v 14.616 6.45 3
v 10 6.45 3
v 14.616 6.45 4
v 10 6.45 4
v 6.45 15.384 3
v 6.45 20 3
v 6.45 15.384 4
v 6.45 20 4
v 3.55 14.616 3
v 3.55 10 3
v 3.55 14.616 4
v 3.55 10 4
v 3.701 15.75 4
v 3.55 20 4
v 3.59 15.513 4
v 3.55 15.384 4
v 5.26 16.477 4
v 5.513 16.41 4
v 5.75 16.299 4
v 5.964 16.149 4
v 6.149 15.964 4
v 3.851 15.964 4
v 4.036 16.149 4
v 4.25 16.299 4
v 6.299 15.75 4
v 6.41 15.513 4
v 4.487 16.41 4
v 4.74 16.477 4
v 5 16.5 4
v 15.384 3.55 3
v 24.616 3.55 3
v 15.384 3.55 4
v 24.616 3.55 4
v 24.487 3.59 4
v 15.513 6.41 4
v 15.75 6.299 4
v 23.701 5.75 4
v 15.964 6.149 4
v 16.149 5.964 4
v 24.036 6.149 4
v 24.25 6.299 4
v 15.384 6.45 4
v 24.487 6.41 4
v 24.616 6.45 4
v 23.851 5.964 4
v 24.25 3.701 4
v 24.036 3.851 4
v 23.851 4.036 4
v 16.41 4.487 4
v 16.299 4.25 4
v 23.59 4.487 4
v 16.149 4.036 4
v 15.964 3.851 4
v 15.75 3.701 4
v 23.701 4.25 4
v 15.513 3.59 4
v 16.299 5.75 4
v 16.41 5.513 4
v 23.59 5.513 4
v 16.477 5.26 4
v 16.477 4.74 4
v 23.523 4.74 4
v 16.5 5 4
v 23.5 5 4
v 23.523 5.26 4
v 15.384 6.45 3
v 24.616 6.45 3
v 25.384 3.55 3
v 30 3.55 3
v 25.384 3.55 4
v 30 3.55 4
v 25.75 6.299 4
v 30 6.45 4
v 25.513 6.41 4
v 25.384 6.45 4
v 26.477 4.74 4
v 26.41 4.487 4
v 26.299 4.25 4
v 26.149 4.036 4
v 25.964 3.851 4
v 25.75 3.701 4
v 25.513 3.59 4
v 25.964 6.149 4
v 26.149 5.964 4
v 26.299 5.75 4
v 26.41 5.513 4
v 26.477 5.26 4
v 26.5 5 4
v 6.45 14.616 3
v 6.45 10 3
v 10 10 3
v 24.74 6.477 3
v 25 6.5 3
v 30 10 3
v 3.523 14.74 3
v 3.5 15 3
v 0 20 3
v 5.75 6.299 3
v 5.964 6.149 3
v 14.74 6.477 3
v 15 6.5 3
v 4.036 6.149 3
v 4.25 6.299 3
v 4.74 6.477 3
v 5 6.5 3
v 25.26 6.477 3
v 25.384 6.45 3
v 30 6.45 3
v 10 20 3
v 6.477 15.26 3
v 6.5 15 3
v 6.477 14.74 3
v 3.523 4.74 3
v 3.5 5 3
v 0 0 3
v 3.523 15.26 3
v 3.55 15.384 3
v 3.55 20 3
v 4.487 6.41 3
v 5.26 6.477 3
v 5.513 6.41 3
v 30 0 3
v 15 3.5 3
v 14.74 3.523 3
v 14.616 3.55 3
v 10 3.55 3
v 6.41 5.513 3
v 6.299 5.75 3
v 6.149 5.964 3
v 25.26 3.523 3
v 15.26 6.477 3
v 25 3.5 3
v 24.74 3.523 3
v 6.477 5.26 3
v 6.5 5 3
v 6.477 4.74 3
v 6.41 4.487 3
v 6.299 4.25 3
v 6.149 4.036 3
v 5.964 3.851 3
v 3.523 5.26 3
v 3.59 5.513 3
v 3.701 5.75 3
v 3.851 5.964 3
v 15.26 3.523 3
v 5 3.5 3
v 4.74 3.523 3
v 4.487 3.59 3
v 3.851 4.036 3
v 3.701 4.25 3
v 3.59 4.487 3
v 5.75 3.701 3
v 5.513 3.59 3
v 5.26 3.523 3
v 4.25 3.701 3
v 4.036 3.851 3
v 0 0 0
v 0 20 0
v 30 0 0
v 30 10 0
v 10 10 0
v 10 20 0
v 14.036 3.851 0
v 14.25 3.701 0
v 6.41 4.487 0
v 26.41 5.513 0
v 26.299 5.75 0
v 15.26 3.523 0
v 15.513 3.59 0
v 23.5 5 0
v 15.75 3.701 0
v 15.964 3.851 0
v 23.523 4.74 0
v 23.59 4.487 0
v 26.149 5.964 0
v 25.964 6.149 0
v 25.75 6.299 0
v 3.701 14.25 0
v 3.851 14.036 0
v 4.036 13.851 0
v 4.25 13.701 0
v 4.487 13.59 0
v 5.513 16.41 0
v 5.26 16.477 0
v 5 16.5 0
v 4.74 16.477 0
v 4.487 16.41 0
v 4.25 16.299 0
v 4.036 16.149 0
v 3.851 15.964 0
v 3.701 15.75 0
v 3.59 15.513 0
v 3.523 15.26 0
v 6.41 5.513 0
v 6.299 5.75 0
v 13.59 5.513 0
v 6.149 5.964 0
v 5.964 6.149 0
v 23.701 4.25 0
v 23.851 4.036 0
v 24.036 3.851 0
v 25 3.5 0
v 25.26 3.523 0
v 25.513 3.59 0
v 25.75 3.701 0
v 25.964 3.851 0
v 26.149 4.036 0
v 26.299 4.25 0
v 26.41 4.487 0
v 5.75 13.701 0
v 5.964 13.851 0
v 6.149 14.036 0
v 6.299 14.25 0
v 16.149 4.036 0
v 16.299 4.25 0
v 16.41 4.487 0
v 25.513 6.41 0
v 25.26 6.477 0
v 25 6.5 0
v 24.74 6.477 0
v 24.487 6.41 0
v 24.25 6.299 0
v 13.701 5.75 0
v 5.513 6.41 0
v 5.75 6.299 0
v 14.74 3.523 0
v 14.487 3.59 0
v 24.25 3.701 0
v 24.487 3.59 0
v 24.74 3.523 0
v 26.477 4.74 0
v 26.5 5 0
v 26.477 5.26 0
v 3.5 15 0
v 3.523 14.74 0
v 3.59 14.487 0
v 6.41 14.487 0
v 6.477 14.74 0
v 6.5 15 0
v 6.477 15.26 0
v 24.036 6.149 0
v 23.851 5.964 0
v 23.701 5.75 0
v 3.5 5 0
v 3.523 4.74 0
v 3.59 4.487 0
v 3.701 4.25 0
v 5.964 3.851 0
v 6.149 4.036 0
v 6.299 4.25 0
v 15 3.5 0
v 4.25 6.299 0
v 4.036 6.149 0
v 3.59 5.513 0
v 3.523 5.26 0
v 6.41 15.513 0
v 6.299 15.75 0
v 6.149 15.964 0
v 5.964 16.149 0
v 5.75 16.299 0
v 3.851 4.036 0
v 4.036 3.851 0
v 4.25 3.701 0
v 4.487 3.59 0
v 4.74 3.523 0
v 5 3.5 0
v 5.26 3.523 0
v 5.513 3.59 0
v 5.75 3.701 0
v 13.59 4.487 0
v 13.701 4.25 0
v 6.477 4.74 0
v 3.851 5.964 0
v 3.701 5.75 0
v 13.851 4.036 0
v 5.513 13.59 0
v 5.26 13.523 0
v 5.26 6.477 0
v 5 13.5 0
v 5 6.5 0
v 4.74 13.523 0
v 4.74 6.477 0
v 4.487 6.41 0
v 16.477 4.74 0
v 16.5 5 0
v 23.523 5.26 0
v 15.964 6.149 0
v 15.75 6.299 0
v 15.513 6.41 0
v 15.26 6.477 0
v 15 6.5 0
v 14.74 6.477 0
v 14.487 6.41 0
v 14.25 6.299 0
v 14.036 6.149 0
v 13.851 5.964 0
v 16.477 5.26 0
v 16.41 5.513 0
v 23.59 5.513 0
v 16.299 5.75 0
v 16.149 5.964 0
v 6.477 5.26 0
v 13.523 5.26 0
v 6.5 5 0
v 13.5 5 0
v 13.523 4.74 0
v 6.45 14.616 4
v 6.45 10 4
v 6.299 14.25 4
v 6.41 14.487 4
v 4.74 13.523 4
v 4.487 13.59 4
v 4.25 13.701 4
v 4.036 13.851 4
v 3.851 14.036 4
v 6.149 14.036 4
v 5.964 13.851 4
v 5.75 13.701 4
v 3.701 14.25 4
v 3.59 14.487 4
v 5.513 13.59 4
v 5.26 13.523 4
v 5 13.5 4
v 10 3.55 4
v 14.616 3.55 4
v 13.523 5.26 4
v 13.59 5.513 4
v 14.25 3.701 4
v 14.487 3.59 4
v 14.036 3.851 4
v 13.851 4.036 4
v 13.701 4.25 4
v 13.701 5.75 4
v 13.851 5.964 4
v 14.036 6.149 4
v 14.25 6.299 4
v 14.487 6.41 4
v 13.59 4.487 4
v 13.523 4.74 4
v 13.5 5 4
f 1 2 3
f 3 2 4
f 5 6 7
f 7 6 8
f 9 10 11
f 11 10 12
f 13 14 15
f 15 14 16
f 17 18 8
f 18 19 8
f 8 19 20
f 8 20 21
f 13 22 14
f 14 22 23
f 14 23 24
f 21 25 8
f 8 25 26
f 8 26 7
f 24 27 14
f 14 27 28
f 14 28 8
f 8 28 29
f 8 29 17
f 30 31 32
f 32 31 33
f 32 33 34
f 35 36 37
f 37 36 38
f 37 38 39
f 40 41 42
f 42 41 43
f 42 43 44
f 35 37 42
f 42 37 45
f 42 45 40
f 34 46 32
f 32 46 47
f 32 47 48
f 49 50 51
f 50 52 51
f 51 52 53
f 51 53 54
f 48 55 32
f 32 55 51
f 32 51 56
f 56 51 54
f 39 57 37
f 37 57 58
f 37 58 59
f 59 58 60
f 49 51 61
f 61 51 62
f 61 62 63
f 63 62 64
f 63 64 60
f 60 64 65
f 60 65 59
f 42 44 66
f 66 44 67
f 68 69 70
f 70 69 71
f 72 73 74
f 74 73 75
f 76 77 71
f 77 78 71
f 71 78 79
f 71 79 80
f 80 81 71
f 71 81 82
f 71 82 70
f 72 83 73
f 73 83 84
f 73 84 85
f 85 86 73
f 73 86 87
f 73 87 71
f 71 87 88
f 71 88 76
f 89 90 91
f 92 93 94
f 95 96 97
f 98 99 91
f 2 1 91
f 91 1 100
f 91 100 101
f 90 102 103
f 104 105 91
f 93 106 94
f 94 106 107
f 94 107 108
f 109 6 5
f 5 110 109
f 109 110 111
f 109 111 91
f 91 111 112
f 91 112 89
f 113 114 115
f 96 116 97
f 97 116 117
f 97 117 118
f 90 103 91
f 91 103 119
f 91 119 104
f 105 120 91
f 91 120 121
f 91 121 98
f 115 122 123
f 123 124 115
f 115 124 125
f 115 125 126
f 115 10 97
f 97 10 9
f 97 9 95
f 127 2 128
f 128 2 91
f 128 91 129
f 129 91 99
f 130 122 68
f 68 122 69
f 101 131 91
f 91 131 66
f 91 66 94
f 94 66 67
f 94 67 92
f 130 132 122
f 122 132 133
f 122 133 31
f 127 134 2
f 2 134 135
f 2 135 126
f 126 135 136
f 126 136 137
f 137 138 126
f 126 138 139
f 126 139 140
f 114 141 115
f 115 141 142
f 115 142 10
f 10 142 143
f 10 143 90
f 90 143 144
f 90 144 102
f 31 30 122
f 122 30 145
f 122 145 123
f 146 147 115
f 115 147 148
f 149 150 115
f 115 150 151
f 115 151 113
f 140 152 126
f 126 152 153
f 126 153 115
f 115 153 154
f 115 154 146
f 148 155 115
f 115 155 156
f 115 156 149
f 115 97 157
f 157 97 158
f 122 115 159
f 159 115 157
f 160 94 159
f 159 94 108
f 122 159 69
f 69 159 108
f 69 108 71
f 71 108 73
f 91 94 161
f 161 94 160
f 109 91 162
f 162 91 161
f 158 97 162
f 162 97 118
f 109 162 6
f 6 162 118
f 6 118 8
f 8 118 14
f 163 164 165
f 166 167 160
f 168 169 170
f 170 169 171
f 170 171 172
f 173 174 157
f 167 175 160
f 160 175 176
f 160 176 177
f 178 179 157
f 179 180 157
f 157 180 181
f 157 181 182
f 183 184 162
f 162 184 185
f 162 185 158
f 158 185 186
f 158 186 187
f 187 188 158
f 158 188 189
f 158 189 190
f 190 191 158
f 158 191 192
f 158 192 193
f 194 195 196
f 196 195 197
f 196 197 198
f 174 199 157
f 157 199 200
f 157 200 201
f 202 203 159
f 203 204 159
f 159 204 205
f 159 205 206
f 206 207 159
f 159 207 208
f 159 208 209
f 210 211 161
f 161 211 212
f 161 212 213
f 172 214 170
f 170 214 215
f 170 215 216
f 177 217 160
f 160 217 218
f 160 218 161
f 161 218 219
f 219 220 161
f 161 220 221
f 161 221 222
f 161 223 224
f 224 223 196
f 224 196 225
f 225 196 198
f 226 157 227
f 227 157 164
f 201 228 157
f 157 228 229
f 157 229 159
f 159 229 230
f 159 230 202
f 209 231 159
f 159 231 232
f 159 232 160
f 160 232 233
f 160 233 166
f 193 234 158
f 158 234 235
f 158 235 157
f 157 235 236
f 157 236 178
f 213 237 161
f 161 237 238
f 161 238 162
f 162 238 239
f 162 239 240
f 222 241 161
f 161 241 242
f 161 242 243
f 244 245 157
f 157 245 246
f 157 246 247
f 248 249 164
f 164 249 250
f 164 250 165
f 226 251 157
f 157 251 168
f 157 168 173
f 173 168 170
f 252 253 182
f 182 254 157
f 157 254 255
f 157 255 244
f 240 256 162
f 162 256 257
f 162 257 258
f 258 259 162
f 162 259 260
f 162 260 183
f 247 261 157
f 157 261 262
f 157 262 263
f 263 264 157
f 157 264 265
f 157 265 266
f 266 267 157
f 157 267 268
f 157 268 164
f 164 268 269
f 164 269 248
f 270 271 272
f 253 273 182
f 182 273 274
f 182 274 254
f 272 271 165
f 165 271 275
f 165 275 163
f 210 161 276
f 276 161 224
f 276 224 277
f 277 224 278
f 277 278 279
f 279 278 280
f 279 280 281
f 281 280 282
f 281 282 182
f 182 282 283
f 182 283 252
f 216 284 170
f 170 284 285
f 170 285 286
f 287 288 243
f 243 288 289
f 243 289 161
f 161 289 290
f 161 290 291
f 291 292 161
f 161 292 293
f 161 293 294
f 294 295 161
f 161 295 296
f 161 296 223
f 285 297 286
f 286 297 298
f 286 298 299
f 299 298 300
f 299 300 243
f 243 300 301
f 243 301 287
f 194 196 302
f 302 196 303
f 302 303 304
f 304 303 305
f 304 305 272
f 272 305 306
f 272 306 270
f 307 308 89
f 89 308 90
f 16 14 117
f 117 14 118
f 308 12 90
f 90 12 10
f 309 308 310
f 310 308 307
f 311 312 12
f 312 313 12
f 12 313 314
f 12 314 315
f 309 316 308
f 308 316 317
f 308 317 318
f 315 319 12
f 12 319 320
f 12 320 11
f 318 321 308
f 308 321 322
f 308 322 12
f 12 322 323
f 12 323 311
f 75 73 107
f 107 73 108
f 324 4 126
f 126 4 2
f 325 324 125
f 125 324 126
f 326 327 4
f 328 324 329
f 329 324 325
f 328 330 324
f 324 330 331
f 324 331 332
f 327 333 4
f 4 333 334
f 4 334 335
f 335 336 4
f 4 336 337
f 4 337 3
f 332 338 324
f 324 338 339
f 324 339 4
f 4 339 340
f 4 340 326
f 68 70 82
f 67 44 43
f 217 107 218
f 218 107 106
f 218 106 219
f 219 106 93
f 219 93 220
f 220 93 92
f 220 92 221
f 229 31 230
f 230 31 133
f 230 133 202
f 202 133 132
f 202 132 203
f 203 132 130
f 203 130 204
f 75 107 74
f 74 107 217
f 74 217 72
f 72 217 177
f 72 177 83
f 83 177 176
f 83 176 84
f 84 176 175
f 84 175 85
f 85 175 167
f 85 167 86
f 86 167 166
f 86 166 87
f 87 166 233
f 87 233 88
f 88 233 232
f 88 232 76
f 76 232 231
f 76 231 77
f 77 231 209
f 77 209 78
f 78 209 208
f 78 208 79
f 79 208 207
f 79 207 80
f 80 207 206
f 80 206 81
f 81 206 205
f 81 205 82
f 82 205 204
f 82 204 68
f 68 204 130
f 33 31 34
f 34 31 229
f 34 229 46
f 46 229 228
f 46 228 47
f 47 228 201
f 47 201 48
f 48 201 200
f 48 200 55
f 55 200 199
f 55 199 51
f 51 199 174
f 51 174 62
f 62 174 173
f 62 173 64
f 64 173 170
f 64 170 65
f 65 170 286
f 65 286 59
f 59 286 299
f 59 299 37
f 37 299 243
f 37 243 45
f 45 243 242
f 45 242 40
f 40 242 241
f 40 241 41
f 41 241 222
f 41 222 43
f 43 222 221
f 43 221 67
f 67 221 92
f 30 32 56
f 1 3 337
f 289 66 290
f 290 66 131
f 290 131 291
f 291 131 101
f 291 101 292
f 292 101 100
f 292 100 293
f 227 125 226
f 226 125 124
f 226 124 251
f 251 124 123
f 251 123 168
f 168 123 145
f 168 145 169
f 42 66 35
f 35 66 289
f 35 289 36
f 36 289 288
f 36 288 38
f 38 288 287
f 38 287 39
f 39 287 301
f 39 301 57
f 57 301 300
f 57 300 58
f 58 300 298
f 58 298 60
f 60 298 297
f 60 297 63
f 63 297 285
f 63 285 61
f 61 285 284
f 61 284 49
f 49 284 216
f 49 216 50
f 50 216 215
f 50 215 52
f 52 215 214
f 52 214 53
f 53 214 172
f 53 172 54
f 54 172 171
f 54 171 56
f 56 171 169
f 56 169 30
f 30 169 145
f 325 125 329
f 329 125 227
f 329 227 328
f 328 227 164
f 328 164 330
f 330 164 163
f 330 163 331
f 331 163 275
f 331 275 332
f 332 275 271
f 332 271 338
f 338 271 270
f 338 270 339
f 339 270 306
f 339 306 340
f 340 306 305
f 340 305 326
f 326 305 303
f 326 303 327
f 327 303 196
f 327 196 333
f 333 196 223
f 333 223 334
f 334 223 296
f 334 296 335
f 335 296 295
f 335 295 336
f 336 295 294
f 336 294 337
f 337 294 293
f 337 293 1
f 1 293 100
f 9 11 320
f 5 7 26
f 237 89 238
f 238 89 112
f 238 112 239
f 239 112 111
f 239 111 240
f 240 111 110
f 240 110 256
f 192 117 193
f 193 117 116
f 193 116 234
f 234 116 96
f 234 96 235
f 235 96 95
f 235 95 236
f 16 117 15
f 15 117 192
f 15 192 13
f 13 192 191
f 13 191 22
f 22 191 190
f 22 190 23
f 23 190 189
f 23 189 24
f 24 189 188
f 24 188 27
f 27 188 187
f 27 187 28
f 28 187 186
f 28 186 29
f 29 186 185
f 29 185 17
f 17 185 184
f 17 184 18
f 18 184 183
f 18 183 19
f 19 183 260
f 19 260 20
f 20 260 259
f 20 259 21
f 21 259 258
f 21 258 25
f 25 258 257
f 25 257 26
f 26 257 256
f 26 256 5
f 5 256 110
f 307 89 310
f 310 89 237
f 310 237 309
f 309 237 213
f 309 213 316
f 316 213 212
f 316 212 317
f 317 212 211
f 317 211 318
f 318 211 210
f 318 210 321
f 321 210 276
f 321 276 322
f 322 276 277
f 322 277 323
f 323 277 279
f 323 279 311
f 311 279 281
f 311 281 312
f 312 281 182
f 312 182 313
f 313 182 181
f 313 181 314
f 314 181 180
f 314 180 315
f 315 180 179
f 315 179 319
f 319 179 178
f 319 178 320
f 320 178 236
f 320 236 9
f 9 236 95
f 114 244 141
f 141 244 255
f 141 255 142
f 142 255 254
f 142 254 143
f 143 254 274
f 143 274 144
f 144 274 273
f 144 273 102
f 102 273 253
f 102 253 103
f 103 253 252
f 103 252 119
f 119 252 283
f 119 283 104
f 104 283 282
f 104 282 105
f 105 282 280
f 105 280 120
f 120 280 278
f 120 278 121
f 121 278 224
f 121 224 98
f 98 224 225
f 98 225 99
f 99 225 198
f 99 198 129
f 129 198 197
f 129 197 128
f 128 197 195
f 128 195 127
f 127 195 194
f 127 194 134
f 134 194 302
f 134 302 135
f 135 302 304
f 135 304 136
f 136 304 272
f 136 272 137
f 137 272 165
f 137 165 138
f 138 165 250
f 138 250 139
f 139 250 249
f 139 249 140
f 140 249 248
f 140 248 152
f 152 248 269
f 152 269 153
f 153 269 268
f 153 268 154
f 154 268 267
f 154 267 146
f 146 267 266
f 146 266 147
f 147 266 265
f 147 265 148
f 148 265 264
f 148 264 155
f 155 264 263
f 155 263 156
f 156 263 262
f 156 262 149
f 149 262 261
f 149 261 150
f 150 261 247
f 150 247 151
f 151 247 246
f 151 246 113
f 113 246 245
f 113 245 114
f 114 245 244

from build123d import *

# Parameters (mm, degrees)
BOSS_EXTRU_1_DEPTH      = 3
ESQUISSE2_W             = 2.9
ESQUISSE2_H             = 10
ESQUISSE2_W_2           = 20
ESQUISSE2_H_2           = 2.9
BOSS_EXTRU_2_DEPTH      = 1
ESQUISSE3_R             = 1.5
ENL_V_MAT_EXTRU_1_DEPTH = 5


with BuildPart() as part:
    # Esquisse1 → Boss.-Extru.1 (new body)
    with BuildSketch(Plane.XY):
        Polygon((0, 0), (30, 0), (30, 10), (10, 10), (10, 20), (0, 20), align=None)
    extrude(amount=BOSS_EXTRU_1_DEPTH)

    # Esquisse2 → Boss.-Extru.2 (add)
    with BuildSketch(Plane.XY.offset(3)):
        with Locations((5, 15)):
            Rectangle(ESQUISSE2_W, ESQUISSE2_H)
        with Locations((20, 5)):
            Rectangle(ESQUISSE2_W_2, ESQUISSE2_H_2)
    extrude(amount=BOSS_EXTRU_2_DEPTH)

    # Esquisse3 → Enlèv. mat.-Extru.1 (cut, through all)
    with BuildSketch(Plane(origin=(0, 0, 0), x_dir=(-1, 0, 0), z_dir=(0, 0, -1))):
        with Locations((-25, 5)):
            Circle(ESQUISSE3_R)
        with Locations((-15, 5)):
            Circle(ESQUISSE3_R)
        with Locations((-5, 15)):
            Circle(ESQUISSE3_R)
        with Locations((-5, 5)):
            Circle(ESQUISSE3_R)
    extrude(amount=-ENL_V_MAT_EXTRU_1_DEPTH, mode=Mode.SUBTRACT)


solid = part.part
